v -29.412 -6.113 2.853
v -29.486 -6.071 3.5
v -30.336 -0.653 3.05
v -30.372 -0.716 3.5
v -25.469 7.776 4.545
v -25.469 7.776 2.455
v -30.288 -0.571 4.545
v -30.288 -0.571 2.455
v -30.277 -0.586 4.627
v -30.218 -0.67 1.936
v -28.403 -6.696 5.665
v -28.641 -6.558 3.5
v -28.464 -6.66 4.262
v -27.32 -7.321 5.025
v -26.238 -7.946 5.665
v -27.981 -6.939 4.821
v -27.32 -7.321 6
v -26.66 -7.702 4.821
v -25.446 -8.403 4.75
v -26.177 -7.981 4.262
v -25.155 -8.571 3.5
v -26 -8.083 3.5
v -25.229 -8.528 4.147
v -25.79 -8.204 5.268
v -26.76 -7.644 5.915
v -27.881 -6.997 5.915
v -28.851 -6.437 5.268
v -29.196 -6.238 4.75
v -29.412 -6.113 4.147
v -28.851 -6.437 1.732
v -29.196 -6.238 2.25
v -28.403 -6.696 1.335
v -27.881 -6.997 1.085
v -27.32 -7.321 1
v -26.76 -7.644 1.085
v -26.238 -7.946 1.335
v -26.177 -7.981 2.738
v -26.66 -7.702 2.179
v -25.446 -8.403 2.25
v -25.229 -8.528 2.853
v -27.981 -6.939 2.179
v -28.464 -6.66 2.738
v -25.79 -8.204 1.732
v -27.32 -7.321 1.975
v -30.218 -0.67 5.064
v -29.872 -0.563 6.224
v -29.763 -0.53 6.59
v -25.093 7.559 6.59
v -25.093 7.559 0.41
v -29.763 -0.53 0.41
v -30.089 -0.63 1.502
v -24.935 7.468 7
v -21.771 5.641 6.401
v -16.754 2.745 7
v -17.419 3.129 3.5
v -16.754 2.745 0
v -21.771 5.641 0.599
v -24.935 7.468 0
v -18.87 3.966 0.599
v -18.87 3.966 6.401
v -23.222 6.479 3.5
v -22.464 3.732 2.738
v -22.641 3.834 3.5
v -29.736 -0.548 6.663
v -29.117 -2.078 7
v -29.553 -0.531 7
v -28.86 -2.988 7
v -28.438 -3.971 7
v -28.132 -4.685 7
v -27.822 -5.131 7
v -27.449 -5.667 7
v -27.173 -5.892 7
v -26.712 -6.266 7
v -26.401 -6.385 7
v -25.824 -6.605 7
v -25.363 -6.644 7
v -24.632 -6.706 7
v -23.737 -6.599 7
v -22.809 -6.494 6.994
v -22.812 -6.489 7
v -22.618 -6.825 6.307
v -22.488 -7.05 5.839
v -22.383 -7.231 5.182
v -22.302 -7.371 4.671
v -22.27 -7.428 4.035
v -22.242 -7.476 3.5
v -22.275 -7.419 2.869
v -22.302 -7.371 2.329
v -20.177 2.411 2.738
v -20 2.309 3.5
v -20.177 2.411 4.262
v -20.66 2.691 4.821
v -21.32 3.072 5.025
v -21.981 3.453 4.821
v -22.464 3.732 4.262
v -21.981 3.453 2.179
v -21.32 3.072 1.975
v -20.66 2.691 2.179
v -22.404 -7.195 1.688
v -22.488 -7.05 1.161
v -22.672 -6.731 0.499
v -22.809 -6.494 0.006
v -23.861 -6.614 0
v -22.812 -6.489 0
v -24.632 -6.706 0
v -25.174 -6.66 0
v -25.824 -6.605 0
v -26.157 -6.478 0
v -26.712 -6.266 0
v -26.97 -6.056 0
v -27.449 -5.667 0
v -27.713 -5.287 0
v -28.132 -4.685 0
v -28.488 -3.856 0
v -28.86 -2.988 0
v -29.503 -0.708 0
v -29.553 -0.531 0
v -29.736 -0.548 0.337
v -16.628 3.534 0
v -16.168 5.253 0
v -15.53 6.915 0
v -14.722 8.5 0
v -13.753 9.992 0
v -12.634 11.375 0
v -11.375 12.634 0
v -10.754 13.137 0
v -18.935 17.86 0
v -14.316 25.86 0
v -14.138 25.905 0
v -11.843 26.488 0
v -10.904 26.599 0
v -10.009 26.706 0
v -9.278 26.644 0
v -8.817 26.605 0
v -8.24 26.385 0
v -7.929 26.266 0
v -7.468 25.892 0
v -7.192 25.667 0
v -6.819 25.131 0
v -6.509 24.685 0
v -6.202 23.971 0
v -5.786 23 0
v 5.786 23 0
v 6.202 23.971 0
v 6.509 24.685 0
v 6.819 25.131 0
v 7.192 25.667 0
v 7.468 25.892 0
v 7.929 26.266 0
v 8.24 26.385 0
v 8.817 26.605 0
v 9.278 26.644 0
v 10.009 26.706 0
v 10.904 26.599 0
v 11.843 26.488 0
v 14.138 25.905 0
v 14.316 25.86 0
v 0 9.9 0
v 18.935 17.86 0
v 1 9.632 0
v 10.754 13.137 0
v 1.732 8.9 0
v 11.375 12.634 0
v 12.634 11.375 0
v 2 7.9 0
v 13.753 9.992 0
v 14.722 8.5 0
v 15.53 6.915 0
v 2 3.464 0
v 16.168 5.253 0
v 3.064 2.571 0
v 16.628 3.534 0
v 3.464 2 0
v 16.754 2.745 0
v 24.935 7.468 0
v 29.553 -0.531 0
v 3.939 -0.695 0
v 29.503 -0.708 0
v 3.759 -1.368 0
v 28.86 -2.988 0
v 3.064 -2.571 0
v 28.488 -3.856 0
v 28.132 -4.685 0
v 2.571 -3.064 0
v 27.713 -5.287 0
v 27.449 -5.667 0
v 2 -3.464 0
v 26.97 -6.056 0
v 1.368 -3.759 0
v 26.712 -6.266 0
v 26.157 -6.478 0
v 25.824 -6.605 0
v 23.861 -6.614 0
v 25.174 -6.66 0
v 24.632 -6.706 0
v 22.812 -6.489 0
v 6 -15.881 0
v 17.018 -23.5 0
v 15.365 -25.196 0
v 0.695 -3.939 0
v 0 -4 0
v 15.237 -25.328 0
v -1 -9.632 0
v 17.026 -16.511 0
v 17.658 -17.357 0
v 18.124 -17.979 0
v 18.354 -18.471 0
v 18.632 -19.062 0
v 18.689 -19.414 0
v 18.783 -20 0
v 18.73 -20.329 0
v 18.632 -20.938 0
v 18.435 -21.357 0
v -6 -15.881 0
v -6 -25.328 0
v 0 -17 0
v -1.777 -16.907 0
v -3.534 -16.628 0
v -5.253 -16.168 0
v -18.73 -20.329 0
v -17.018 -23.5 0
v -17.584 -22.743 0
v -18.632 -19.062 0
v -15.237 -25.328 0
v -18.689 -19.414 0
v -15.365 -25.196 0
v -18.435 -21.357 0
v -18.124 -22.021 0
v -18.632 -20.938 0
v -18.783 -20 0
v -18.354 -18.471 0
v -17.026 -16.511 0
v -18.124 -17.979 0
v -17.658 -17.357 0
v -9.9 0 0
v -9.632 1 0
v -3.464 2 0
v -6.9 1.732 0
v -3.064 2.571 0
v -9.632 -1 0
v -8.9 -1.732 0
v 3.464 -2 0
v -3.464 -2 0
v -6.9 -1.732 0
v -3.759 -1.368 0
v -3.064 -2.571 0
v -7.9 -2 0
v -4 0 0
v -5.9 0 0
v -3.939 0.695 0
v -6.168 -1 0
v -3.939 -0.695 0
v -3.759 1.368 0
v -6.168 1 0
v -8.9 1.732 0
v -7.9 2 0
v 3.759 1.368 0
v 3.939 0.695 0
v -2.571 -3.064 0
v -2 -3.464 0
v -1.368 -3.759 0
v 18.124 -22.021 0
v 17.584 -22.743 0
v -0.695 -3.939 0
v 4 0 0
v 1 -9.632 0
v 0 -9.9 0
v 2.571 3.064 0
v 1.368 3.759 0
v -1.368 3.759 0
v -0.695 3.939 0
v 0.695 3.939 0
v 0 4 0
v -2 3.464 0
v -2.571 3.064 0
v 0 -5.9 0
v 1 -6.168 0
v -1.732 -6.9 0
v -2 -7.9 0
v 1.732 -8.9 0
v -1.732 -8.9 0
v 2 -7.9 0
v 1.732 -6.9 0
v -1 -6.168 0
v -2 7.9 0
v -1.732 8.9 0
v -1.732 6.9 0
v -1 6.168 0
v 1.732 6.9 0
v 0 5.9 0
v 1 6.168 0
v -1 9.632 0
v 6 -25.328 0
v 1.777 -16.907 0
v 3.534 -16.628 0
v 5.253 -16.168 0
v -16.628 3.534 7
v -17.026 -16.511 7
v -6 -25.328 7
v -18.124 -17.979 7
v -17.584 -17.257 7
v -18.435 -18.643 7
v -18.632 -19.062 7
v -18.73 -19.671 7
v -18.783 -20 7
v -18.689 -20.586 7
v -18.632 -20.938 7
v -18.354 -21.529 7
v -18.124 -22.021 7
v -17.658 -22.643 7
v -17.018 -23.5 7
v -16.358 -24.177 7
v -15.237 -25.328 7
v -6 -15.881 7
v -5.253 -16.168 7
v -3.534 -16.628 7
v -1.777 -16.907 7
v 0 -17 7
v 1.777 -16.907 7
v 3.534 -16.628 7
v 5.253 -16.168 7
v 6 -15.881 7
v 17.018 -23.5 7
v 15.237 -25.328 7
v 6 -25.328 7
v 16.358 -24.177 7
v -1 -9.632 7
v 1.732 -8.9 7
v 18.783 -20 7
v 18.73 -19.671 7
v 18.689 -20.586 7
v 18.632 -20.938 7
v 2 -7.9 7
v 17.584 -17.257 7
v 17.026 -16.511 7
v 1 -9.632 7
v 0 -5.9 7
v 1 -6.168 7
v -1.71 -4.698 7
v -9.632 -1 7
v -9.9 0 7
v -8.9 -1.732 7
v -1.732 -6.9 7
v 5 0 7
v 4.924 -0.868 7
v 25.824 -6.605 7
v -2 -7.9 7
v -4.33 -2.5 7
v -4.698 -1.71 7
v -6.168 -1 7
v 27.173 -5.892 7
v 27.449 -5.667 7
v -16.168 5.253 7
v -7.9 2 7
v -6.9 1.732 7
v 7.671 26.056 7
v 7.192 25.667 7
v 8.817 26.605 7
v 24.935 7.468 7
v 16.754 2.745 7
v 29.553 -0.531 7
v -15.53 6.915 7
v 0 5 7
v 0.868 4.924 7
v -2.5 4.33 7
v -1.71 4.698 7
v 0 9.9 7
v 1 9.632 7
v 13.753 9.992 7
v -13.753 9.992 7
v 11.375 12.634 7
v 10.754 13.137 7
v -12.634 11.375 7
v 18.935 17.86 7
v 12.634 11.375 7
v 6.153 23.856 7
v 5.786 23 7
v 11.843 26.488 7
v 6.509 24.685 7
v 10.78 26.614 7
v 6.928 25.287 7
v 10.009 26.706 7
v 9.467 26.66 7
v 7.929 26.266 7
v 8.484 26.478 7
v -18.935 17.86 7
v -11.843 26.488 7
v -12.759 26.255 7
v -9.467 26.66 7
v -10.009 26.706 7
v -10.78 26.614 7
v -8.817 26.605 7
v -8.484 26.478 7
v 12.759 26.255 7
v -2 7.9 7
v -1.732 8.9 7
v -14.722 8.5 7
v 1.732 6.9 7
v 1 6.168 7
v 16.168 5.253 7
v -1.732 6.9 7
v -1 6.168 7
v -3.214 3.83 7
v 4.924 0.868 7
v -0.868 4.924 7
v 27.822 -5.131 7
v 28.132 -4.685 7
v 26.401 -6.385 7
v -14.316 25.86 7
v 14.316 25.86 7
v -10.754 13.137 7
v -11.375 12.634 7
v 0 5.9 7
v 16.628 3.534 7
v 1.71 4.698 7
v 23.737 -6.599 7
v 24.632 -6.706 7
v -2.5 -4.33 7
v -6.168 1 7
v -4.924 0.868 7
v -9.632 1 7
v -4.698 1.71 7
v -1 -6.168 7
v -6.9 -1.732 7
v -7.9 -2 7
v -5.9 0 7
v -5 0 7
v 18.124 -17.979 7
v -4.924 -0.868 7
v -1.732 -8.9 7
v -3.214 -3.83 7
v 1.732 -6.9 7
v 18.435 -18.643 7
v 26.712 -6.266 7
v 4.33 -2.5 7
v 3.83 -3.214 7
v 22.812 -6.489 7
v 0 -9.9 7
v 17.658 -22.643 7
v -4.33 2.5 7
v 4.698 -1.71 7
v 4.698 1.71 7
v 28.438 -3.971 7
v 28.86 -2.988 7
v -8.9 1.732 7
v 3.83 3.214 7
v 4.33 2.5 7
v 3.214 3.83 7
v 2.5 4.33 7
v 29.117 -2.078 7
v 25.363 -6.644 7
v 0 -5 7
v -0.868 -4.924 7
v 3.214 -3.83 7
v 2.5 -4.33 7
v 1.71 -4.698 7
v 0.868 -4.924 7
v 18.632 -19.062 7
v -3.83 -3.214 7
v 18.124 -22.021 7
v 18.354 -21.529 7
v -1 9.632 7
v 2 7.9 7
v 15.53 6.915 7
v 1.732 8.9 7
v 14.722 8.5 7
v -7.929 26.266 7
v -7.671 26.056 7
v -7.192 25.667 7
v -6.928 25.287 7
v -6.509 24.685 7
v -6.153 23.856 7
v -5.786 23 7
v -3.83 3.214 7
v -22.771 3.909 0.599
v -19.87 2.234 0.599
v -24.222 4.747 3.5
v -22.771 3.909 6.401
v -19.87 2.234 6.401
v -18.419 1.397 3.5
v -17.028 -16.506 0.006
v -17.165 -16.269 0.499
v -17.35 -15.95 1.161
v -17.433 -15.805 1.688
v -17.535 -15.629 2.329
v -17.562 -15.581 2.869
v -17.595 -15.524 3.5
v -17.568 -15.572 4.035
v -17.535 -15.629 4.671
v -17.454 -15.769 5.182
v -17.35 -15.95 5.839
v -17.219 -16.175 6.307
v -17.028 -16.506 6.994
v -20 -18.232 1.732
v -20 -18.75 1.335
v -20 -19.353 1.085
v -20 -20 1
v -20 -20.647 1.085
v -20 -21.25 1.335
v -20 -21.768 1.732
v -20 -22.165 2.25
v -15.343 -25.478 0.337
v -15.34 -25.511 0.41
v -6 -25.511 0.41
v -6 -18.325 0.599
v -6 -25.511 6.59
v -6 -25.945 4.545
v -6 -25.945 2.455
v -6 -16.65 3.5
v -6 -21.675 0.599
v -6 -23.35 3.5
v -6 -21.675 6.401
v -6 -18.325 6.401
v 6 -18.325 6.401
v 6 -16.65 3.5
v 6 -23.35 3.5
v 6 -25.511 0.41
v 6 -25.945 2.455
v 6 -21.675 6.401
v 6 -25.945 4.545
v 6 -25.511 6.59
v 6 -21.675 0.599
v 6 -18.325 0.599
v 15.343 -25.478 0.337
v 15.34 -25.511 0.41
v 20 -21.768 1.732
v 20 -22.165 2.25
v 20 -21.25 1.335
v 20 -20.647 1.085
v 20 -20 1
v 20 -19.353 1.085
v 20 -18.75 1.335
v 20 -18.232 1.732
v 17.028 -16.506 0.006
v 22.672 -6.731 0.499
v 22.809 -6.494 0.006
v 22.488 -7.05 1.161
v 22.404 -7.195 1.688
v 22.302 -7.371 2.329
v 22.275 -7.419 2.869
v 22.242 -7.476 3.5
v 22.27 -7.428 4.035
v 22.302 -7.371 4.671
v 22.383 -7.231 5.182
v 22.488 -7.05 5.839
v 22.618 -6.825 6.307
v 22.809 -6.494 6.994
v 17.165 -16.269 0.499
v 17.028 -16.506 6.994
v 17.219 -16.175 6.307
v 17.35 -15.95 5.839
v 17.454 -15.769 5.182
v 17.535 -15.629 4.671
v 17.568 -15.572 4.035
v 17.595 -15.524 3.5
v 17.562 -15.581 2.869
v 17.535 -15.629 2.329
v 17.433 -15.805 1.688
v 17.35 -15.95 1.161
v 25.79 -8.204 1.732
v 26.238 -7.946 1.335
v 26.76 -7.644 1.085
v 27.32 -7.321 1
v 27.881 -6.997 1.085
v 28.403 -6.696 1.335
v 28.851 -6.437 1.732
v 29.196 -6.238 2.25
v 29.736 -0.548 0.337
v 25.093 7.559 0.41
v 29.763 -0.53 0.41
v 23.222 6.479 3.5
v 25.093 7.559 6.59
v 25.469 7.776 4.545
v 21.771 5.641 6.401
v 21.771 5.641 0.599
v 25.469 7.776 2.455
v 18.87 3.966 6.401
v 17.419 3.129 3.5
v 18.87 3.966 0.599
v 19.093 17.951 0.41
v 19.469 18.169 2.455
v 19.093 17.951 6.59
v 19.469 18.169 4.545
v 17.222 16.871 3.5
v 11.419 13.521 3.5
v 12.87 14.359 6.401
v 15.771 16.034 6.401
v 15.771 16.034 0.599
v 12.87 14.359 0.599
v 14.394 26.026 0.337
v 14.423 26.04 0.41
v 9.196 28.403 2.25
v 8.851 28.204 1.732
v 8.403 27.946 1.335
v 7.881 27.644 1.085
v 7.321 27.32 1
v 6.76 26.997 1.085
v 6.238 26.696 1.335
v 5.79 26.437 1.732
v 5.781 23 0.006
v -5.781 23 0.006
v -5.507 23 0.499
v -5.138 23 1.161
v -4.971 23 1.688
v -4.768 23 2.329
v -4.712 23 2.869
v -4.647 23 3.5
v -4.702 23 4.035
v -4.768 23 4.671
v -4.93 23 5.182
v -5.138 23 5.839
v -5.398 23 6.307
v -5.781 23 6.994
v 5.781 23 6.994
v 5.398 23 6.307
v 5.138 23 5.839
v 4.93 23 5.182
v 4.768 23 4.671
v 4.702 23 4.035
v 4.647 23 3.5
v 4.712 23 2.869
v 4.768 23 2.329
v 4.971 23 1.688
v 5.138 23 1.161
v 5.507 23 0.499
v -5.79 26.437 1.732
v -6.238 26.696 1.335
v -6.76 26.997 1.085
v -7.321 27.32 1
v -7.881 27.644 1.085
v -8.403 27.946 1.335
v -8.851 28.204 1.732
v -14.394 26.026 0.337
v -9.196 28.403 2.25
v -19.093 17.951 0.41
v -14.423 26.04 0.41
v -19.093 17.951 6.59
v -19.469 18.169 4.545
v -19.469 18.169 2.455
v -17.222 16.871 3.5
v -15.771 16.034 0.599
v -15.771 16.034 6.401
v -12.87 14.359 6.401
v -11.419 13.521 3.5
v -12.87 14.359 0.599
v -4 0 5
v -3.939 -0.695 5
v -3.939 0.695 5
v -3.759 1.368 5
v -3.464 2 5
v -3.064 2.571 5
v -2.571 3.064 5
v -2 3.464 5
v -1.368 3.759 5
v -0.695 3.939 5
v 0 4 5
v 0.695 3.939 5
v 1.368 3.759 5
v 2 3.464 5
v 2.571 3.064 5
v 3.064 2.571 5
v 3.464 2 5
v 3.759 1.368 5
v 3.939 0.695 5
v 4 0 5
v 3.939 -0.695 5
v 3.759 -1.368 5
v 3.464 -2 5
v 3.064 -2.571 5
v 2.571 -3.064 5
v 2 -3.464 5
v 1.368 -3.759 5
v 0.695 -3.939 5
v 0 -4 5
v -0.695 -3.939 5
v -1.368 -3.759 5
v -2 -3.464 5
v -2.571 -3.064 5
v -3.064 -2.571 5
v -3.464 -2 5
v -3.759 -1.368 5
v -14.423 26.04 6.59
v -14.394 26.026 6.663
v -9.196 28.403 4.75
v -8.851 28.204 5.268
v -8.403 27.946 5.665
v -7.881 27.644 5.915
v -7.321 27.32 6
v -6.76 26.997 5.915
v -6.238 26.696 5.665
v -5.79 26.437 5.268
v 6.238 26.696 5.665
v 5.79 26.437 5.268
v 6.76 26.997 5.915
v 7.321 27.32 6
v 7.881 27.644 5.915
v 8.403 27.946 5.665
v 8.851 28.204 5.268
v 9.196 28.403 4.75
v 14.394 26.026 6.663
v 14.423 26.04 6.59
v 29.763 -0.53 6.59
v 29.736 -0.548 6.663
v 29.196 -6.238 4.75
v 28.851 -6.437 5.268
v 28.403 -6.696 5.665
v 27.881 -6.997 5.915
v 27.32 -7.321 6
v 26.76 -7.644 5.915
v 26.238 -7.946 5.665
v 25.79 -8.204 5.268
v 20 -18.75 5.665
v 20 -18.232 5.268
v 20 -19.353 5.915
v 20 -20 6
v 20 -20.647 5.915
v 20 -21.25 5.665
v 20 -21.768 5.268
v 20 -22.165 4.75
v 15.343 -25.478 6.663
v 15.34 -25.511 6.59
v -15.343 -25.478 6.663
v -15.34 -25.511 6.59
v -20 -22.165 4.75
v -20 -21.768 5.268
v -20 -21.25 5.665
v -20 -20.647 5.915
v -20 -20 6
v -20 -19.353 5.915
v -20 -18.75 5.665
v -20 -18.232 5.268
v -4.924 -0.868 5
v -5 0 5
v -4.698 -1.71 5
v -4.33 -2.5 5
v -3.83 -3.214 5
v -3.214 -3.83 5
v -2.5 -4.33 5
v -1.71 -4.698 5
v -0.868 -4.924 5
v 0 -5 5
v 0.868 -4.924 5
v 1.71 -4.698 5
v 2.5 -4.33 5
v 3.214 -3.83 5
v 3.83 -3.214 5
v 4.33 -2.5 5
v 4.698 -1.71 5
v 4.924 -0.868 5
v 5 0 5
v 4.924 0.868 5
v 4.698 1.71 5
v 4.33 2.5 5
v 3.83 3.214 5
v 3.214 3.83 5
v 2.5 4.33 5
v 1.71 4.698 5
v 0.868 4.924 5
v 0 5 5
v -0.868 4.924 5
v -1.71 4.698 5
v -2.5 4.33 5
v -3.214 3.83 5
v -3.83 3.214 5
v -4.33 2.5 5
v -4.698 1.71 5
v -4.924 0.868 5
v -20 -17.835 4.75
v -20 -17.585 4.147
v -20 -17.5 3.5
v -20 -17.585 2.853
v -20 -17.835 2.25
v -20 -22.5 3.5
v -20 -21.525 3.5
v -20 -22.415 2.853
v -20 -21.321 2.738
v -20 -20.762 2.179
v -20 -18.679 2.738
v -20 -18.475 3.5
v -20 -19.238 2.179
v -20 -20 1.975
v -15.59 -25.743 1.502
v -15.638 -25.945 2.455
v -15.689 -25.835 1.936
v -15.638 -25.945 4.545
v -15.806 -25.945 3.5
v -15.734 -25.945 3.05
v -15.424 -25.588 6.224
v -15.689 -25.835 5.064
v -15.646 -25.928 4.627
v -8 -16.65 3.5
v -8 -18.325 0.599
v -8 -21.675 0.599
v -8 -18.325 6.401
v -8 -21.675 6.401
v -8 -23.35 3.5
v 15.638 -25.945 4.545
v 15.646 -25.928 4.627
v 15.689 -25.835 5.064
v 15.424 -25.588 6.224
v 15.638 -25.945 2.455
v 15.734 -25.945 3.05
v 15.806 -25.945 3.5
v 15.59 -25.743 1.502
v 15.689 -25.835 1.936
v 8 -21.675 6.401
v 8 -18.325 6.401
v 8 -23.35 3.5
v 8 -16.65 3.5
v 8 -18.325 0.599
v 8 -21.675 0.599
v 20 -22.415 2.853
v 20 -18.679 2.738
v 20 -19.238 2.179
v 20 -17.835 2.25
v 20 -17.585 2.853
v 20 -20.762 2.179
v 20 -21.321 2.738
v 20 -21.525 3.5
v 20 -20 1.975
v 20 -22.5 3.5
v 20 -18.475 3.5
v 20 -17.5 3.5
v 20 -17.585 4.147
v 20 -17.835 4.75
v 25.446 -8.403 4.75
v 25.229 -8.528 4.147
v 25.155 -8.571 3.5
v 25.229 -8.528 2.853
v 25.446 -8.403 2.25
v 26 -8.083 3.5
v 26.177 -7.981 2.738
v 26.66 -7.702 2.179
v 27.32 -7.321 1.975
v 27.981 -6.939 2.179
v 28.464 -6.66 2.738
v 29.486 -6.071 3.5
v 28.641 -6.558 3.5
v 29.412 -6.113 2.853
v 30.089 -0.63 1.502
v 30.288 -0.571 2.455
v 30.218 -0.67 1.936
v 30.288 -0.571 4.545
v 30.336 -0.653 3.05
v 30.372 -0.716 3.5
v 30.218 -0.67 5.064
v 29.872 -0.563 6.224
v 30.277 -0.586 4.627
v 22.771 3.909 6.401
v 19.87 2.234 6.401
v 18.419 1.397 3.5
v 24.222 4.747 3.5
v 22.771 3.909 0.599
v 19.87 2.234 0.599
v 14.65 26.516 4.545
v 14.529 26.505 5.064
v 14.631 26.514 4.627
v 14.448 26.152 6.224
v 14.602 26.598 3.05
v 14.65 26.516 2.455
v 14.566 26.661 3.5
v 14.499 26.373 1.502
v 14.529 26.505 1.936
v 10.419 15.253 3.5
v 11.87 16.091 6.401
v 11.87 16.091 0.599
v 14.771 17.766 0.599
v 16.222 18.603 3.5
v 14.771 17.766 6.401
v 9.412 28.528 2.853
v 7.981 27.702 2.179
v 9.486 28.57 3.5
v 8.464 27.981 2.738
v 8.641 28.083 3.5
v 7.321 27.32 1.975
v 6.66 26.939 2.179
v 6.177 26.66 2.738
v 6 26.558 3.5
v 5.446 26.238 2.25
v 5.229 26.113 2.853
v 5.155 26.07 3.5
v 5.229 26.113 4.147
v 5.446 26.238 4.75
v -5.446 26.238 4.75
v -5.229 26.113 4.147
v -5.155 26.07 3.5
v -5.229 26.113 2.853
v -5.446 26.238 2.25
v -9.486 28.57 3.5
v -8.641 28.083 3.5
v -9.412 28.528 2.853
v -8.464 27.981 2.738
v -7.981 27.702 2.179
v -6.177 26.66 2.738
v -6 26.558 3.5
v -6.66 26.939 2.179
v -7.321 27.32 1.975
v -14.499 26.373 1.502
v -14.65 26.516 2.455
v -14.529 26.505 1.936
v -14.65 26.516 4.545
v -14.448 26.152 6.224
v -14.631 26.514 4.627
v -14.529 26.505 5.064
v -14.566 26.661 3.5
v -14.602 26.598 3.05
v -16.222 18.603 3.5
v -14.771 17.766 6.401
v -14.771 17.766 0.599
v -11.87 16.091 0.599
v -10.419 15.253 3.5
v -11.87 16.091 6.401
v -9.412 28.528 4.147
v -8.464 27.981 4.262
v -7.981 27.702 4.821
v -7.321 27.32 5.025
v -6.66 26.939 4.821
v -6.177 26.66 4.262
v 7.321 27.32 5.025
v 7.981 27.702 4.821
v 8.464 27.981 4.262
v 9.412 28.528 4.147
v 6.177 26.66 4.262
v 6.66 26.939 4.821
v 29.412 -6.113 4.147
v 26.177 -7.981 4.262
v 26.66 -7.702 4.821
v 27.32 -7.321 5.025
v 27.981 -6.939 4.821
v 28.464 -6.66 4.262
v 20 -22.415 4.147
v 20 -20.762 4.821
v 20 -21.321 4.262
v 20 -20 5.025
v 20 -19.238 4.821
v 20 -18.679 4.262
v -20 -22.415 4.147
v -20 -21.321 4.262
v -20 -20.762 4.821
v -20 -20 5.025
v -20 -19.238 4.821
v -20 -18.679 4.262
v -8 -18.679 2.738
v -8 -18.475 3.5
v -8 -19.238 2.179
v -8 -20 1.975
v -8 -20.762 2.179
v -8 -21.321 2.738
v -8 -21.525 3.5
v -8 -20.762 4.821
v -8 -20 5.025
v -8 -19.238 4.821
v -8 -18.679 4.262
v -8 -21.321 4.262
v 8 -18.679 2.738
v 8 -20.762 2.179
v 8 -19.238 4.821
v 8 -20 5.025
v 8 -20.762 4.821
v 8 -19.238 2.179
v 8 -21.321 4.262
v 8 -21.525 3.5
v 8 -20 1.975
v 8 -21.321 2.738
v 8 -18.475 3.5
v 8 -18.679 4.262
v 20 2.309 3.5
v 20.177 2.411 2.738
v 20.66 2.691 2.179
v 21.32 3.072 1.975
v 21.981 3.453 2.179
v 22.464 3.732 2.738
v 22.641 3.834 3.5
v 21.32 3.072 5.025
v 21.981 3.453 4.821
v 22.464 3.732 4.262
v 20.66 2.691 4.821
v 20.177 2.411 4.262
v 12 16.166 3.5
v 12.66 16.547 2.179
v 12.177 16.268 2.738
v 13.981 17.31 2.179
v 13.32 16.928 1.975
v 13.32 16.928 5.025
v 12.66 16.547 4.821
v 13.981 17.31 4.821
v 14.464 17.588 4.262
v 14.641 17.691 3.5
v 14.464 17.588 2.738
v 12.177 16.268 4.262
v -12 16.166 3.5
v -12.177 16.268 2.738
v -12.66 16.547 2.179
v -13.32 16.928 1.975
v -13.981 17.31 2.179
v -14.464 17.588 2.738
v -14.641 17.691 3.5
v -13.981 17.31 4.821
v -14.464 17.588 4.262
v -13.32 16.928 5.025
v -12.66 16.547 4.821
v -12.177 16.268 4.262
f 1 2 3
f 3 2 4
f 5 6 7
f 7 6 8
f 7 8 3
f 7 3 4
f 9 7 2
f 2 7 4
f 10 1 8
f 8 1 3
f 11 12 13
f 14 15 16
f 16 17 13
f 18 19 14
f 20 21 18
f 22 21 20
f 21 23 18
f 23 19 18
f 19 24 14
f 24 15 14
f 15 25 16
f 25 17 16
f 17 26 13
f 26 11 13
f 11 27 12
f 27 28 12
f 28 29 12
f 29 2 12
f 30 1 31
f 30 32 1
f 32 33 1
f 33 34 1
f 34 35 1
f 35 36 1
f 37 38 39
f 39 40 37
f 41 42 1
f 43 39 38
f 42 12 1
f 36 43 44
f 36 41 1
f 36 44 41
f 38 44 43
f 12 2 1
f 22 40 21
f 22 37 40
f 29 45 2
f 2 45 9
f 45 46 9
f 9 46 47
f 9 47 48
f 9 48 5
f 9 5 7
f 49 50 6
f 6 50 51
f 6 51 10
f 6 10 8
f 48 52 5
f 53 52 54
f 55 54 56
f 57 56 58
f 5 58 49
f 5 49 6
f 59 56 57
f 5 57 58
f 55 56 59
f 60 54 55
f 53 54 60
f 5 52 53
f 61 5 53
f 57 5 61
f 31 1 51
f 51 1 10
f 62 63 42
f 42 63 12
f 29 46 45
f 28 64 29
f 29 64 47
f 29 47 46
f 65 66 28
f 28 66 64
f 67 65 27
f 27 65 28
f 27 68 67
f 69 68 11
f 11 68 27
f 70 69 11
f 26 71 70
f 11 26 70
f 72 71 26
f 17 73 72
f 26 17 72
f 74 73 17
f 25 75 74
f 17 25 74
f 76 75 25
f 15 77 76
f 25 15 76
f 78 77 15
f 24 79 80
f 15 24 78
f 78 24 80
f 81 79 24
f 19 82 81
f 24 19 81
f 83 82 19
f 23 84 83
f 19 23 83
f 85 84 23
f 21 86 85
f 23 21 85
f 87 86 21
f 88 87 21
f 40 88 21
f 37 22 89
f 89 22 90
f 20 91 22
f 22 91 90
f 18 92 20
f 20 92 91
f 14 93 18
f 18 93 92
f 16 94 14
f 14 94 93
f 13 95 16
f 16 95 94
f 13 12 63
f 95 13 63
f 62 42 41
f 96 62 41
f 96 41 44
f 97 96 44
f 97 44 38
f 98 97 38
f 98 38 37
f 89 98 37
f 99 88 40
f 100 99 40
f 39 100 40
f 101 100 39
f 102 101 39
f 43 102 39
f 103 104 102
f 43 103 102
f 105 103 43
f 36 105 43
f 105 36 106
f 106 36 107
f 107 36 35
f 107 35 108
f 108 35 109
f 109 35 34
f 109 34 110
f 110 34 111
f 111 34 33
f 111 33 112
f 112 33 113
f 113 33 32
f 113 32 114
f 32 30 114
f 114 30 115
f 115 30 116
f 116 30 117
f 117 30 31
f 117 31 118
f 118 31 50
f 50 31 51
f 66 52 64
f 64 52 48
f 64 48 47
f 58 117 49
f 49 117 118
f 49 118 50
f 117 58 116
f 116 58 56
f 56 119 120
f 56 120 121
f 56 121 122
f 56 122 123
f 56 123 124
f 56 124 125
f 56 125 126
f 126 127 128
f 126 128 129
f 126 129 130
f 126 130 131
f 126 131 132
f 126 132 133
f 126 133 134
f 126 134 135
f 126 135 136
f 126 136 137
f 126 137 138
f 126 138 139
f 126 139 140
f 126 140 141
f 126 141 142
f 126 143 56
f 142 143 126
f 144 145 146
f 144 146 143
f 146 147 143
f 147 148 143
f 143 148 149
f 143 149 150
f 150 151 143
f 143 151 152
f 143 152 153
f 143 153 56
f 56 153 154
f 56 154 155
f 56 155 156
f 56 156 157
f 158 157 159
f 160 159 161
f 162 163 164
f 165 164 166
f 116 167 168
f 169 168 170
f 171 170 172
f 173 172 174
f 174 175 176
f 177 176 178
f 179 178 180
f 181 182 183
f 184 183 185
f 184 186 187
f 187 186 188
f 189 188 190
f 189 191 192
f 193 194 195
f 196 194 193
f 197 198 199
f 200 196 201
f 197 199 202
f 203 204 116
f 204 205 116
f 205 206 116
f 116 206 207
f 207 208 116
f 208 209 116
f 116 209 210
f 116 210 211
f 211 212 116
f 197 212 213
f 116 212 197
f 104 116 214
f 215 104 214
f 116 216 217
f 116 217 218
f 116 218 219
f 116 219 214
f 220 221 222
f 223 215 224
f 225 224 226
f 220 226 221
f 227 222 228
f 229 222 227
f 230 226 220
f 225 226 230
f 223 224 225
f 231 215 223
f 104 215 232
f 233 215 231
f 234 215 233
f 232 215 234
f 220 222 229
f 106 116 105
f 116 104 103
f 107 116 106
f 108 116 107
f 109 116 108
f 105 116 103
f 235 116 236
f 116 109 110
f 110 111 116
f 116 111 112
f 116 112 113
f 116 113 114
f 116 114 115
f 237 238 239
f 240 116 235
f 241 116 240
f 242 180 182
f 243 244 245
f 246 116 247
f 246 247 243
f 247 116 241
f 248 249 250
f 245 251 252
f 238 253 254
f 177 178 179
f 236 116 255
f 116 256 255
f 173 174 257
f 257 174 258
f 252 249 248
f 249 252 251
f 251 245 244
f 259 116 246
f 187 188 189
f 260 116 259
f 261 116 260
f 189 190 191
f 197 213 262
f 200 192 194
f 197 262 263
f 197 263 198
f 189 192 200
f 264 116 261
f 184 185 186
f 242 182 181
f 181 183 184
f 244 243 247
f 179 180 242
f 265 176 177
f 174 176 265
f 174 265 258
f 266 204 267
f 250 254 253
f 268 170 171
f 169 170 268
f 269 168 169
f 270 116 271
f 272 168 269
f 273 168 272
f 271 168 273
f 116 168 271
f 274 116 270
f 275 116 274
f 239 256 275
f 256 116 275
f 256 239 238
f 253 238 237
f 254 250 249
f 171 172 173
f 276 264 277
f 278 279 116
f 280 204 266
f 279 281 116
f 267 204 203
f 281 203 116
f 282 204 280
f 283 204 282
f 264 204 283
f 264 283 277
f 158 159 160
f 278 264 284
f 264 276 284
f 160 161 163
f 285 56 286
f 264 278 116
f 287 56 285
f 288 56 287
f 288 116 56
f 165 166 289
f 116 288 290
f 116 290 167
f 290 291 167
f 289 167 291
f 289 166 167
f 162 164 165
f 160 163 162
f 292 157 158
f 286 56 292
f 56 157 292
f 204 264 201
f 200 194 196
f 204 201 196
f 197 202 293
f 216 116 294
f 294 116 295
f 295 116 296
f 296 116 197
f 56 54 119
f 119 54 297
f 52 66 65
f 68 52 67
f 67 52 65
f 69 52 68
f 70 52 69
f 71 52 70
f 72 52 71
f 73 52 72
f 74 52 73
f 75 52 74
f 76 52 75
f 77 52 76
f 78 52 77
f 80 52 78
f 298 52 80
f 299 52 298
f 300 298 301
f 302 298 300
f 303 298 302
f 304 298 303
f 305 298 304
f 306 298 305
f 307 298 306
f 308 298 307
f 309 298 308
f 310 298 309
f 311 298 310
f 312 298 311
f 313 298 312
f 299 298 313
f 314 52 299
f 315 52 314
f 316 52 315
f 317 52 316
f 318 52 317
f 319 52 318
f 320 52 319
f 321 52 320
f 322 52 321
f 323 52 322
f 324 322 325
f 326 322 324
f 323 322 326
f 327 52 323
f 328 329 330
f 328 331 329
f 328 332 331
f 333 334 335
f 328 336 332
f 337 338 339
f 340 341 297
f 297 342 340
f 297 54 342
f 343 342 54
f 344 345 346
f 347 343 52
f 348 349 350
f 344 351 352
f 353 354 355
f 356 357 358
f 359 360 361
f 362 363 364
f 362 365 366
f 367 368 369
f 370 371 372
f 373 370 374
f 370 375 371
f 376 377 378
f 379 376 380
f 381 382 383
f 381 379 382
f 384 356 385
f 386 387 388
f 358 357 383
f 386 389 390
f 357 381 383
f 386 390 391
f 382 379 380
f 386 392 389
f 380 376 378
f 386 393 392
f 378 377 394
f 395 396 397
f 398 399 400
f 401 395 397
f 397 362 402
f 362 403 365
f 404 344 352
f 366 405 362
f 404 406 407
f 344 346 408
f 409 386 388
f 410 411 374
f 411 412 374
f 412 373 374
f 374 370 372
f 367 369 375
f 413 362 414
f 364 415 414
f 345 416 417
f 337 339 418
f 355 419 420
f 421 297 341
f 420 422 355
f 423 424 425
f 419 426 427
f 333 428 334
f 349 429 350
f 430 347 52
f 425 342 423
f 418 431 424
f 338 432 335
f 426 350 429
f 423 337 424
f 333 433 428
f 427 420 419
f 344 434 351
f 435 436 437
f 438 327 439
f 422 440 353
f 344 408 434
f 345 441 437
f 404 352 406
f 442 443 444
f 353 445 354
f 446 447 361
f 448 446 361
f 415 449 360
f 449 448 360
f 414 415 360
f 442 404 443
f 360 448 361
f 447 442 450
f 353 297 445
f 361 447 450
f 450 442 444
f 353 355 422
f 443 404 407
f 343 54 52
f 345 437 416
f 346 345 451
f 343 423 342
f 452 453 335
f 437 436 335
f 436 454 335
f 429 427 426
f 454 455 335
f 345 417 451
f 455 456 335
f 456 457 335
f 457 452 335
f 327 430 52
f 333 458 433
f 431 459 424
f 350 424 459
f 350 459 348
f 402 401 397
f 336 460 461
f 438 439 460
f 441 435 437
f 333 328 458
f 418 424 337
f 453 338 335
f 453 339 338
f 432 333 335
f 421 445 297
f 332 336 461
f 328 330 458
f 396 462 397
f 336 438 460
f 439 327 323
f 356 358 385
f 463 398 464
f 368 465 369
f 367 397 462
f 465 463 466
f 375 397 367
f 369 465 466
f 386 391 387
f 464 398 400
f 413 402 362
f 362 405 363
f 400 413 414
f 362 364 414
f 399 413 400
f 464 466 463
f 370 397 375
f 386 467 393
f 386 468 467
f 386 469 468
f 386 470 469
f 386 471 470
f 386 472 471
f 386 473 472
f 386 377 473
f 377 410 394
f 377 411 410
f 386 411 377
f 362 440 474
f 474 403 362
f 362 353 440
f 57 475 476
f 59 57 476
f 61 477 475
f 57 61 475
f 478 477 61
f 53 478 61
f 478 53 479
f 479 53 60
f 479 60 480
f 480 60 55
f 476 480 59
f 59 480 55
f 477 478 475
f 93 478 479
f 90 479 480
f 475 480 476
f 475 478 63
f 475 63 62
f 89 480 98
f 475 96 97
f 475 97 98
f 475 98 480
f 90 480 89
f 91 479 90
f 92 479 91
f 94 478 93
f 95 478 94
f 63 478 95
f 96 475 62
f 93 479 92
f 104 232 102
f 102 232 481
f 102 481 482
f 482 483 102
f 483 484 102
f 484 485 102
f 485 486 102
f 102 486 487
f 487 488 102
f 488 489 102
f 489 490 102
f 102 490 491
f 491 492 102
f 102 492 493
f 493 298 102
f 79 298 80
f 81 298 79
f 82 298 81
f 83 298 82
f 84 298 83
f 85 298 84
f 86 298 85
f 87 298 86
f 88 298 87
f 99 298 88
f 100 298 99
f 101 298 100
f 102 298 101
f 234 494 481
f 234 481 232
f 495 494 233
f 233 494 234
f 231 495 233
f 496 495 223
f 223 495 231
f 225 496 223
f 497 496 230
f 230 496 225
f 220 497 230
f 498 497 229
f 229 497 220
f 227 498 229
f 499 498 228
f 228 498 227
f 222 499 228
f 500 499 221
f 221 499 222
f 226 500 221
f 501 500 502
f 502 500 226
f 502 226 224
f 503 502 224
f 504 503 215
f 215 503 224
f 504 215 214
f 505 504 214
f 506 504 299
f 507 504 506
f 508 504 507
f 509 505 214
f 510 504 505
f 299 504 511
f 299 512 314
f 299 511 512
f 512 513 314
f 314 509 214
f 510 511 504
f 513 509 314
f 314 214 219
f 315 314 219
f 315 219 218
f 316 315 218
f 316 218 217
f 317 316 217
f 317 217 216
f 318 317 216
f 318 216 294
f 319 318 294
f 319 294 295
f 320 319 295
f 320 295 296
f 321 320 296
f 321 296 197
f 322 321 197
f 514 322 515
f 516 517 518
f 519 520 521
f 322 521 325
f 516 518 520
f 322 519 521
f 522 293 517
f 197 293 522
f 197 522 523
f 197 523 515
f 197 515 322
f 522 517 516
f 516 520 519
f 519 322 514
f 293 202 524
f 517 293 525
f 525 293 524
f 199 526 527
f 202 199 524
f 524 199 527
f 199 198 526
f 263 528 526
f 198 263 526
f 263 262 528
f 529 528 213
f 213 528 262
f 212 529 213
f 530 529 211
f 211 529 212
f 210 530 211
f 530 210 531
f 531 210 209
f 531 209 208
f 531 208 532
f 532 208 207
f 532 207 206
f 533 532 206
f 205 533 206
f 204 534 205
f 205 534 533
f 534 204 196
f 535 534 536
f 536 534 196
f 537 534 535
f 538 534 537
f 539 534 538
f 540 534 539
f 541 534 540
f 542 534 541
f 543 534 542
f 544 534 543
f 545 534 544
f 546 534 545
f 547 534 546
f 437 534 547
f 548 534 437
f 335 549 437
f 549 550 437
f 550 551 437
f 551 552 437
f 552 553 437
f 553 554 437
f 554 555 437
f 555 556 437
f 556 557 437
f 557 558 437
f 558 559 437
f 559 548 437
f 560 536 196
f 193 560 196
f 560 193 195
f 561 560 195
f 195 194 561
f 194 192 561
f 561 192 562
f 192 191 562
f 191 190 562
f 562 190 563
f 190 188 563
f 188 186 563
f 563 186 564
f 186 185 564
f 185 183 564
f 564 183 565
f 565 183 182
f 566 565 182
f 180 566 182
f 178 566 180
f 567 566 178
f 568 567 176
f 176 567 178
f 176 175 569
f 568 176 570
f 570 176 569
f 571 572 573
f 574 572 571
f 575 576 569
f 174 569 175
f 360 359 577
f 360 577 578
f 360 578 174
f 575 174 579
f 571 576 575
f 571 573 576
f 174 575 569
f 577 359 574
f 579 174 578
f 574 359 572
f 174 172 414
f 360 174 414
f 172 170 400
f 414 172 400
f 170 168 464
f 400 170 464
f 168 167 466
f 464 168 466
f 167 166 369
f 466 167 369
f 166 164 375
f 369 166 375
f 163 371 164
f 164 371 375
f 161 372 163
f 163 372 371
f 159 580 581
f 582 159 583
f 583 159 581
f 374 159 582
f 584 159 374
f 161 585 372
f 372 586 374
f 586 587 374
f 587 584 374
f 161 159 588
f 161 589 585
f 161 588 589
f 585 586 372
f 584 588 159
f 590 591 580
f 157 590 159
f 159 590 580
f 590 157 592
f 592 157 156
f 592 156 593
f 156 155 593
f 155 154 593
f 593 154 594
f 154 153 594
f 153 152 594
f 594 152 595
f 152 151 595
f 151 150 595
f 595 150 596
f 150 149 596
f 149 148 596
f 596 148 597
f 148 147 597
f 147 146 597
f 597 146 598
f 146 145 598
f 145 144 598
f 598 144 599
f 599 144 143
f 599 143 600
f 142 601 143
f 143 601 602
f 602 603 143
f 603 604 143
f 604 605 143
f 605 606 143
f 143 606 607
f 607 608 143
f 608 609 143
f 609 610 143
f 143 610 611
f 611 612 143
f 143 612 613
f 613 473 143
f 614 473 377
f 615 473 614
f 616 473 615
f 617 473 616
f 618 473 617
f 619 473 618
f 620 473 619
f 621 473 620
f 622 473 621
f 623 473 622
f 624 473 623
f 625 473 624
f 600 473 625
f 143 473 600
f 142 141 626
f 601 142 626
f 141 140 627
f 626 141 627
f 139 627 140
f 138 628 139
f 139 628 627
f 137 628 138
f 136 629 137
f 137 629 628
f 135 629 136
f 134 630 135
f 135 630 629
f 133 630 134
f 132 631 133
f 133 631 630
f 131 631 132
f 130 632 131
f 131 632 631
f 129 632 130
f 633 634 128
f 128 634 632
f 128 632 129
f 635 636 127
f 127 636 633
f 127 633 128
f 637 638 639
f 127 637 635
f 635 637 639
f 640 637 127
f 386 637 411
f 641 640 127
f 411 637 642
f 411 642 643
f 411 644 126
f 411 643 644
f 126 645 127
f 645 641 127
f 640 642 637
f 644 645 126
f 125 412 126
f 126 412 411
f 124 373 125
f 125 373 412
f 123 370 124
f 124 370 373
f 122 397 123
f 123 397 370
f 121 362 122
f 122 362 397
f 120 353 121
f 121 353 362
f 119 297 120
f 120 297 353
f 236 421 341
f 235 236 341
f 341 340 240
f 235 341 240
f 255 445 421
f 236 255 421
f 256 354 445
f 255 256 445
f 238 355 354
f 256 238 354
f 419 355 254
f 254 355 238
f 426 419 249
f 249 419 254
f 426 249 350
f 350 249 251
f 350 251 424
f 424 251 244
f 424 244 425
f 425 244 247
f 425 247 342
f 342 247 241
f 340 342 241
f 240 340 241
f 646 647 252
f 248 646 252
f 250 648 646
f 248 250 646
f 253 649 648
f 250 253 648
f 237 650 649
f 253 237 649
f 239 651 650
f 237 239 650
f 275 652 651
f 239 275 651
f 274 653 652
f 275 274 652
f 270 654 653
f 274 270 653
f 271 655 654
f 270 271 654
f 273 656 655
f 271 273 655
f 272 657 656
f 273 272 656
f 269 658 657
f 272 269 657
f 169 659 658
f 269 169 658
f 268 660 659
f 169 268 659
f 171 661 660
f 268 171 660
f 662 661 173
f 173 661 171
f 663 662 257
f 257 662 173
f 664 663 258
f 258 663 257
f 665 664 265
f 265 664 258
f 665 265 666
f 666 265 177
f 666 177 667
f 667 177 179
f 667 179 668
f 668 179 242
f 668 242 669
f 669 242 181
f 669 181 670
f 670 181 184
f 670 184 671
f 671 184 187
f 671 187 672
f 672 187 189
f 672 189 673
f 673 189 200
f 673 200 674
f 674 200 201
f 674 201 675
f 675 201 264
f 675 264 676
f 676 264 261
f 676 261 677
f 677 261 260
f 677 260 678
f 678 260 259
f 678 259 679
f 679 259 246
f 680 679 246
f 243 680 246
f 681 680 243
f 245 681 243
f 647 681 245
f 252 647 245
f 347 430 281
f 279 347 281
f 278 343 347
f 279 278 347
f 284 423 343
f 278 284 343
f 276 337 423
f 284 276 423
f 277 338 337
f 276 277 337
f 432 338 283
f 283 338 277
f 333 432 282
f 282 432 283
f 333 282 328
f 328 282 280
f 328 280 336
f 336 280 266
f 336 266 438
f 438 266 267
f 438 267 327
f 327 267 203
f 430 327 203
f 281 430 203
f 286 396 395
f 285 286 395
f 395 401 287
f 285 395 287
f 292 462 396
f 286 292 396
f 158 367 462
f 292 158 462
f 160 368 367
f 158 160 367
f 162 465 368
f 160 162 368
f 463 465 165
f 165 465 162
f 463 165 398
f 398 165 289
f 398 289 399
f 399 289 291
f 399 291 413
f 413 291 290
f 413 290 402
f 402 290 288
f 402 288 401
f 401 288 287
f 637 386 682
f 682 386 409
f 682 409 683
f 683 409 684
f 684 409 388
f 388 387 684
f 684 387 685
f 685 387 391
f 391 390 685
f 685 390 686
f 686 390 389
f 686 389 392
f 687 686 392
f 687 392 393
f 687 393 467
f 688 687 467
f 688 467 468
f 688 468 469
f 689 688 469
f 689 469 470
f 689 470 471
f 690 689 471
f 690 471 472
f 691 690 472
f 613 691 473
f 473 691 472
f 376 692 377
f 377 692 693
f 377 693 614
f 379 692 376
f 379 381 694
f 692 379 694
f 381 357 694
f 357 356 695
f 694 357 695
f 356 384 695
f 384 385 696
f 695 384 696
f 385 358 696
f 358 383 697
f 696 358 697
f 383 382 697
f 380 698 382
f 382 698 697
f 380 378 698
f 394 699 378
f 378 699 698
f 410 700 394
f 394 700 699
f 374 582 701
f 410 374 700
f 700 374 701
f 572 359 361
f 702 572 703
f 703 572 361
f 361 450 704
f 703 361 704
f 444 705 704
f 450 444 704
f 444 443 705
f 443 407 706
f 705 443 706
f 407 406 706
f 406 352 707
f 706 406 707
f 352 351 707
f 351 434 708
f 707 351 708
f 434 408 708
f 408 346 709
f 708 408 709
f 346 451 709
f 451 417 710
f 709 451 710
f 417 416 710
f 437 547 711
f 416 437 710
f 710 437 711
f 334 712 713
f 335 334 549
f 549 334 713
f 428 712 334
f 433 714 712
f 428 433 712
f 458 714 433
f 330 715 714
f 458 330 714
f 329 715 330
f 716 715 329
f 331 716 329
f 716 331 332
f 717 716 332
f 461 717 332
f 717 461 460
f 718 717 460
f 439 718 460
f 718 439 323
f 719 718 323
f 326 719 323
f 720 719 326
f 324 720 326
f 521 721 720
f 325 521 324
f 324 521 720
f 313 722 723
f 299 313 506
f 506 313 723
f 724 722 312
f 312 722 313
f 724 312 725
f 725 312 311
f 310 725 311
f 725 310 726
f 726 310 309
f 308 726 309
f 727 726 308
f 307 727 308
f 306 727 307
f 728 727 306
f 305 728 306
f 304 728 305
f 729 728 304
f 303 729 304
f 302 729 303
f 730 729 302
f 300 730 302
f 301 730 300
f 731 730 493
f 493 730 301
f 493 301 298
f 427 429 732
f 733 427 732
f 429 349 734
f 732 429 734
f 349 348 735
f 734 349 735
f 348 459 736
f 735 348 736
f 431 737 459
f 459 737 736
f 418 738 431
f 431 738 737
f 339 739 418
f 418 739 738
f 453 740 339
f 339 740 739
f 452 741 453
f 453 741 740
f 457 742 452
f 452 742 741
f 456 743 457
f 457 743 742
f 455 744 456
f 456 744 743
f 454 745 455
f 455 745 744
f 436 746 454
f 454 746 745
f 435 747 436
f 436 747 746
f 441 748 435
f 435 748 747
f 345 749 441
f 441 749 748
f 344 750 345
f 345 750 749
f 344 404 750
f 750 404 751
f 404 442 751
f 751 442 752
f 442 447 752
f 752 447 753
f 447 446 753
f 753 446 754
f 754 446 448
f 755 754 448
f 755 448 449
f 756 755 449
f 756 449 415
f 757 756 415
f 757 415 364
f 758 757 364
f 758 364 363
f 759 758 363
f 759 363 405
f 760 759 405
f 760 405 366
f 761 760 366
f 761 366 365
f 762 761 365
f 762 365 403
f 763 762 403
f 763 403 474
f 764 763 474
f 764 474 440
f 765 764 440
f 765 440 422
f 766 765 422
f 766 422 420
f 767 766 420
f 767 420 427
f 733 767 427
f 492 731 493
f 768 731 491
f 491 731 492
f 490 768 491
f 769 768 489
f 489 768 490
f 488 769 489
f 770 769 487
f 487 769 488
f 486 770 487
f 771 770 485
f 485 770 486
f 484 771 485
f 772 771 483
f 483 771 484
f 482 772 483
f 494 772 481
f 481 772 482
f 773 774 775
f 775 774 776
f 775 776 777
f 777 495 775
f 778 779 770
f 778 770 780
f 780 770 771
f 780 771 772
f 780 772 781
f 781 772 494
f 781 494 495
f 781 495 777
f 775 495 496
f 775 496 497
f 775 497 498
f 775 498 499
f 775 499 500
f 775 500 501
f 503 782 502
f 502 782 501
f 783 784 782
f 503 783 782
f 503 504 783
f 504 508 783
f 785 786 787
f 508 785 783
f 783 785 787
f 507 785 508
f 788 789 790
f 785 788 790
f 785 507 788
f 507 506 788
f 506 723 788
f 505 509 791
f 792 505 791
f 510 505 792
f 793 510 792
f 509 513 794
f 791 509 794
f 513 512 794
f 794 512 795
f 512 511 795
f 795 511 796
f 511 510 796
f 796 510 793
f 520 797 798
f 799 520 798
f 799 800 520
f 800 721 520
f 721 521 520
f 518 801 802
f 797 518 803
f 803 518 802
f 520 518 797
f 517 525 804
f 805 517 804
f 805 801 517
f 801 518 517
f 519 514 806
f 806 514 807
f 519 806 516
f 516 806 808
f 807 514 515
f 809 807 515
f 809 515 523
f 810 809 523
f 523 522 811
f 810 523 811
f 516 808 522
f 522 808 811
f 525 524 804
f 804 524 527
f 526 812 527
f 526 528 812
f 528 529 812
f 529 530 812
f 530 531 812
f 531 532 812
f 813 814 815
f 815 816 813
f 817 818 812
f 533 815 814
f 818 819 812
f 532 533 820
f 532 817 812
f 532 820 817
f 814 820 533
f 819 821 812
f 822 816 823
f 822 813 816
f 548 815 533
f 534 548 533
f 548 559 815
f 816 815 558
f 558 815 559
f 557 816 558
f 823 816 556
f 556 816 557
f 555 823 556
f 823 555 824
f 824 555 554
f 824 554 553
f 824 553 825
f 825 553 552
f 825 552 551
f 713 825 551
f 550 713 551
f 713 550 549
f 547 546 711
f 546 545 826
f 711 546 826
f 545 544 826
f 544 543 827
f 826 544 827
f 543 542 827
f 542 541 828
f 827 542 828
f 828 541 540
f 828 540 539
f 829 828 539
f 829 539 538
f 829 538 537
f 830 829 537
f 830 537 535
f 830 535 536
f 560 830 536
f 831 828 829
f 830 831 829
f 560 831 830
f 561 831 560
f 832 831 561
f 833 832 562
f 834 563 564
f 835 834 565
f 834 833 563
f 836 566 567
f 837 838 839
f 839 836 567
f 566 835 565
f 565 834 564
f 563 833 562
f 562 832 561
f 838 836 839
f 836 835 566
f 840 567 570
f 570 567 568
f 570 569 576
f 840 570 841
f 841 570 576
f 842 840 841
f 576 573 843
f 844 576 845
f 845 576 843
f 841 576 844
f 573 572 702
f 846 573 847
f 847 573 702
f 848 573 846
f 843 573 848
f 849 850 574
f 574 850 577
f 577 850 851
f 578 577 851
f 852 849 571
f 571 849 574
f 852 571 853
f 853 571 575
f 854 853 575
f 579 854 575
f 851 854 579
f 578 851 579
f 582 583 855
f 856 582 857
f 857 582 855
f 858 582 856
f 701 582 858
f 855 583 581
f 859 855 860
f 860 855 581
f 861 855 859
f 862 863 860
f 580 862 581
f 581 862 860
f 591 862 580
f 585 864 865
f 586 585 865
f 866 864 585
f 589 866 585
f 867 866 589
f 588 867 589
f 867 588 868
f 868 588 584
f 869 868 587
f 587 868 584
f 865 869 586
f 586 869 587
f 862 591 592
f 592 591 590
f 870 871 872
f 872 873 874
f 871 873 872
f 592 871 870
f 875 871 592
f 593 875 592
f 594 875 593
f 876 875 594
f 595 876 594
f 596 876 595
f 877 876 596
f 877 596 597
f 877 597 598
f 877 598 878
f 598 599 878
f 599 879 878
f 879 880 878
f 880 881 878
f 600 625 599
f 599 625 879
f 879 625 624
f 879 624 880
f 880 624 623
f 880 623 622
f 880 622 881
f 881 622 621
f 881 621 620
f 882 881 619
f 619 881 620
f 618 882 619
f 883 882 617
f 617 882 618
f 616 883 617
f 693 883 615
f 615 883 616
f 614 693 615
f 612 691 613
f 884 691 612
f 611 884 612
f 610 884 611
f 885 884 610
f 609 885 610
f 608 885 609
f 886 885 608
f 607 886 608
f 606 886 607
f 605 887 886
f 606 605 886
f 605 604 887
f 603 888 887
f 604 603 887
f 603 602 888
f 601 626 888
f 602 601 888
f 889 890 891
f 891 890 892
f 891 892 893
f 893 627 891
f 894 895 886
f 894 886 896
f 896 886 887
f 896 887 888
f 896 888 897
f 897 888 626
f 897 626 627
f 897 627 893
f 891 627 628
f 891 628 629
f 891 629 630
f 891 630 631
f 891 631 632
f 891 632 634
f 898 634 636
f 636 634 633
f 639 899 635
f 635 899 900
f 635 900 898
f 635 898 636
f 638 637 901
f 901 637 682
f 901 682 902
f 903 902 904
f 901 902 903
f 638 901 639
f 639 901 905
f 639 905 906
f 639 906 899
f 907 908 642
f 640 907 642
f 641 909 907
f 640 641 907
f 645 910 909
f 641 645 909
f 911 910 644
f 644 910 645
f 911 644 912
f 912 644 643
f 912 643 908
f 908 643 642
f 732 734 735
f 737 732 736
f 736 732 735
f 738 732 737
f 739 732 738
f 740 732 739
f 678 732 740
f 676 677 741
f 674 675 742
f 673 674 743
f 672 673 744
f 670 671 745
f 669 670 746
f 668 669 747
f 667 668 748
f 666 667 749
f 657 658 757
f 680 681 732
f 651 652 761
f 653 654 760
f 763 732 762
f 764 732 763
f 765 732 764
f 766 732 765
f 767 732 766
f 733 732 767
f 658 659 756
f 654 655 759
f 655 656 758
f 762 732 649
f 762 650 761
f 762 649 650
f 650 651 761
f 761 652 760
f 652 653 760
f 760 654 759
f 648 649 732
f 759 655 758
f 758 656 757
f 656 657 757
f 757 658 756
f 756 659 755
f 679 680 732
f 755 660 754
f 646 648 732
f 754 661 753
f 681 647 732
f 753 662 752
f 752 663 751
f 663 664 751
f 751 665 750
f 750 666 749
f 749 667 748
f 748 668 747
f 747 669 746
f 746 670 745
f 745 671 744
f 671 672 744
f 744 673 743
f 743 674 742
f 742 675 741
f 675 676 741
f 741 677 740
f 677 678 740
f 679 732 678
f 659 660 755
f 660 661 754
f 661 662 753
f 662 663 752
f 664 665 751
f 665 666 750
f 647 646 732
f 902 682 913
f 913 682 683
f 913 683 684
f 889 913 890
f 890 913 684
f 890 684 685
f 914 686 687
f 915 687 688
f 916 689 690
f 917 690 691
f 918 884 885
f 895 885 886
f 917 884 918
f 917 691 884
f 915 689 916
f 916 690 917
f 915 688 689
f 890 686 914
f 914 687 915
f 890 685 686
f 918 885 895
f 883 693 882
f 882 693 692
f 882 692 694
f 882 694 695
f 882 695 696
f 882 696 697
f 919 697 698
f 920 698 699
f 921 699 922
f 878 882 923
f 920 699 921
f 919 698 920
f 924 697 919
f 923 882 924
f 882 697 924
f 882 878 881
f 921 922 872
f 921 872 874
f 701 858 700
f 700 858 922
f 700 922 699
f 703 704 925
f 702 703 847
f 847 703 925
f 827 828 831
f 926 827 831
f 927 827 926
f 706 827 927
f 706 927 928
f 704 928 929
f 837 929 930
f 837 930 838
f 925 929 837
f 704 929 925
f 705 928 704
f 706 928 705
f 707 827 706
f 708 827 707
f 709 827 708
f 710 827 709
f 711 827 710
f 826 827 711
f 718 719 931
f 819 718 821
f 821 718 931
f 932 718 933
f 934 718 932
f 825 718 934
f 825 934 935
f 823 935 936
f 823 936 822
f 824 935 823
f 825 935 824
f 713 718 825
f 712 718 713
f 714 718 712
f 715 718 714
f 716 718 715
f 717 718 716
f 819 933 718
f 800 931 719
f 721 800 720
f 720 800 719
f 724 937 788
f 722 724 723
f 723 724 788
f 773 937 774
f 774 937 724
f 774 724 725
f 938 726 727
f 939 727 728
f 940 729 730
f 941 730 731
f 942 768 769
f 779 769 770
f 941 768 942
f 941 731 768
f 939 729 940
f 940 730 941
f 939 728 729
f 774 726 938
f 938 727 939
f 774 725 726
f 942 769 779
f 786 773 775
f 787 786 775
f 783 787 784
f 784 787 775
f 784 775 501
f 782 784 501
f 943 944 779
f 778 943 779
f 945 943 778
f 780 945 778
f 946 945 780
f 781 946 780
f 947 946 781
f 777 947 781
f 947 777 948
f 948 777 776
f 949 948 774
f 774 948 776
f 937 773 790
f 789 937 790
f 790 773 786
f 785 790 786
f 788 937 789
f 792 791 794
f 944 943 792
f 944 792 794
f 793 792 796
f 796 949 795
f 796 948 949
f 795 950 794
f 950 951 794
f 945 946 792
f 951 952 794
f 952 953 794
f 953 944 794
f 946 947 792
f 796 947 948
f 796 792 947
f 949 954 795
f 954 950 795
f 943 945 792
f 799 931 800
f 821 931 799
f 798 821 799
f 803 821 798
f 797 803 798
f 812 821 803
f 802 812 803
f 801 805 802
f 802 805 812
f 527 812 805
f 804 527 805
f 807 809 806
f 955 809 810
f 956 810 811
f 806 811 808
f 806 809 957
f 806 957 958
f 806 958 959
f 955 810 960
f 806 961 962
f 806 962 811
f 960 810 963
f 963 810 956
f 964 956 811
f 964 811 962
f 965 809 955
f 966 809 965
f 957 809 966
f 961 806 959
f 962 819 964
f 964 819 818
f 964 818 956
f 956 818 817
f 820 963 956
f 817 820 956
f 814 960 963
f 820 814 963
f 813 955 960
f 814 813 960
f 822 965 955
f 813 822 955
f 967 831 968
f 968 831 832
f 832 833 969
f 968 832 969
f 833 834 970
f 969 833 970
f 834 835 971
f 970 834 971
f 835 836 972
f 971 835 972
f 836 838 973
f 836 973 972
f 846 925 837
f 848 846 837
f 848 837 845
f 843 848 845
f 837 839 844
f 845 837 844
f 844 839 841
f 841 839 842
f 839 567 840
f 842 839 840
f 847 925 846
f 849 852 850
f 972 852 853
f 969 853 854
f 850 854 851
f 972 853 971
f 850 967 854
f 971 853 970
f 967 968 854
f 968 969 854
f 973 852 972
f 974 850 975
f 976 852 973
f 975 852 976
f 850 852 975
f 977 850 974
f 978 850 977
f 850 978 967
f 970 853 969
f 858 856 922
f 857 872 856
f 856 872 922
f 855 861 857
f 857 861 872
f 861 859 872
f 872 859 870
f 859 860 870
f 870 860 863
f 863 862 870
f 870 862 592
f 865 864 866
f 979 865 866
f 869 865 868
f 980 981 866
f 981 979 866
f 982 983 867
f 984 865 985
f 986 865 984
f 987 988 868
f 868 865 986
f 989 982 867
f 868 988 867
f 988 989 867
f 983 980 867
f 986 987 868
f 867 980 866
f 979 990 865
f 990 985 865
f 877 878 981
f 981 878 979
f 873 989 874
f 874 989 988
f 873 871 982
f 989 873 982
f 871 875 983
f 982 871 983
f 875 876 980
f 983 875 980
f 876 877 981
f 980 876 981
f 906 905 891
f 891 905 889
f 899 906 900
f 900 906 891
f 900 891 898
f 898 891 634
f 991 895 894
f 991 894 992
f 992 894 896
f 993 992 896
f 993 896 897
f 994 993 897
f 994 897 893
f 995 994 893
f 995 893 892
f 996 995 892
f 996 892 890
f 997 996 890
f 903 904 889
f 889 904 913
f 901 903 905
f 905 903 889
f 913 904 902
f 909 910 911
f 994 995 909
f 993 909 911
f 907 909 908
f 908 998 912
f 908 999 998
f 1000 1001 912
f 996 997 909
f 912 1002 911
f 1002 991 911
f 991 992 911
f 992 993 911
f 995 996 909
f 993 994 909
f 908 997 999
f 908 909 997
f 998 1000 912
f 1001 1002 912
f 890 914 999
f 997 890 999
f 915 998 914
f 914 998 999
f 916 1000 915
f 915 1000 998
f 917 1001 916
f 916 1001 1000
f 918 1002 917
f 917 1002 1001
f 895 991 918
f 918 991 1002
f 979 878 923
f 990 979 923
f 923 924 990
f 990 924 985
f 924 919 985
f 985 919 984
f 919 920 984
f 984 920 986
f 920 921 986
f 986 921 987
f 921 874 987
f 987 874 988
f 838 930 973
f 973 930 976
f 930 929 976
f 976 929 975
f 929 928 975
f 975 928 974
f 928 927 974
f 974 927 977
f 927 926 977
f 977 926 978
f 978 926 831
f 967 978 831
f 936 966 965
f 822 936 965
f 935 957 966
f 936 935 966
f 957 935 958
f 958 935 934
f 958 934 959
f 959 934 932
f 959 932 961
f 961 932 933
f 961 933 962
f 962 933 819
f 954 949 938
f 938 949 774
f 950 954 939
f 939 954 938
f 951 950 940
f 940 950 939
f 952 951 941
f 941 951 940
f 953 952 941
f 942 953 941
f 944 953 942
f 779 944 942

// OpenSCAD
// file: configuration.scad
// Increase this if your slicer or printer make holes too tight.
extra_radius = 0.1;

// OD = outside diameter, corner to corner.
m3_nut_od = 6.1;
m3_nut_radius = m3_nut_od/2 + 0.2 + extra_radius;
m3_washer_radius = 3.5 + extra_radius;

// Major diameter of metric 3mm thread.
m3_major = 2.85;
m3_radius = m3_major/2 + extra_radius;
m3_wide_radius = m3_major/2 + extra_radius + 0.2;

// NEMA17 stepper motors.
motor_shaft_diameter = 5;
motor_shaft_radius = motor_shaft_diameter/2 + extra_radius;

// Frame brackets. M3x8mm screws work best with 3.6 mm brackets.
thickness = 3.6;

// OpenBeam or Misumi. Currently only 15x15 mm, but there is a plan
// to make models more parametric and allow 20x20 mm in the future.
extrusion = 20;

// Placement for the NEMA17 stepper motors.
motor_offset = 44;
motor_length = 47;
// main file
include <configuration.scad>;

mount_radius = 7.9;   // Radius from brushless motor mount screws
screw_hole_radius = 2;// hole size for mount screws
flange_radius = 5;    // Radius of bearing flange (5mm)
flange_height = 1.5;  // Height of bearing flange (1.5mm)
bearing_radius = 4;   // Radius of bearing (below flange)

height = 7;           // height of overall effector

// mounts from original kossel mini
separation = 40;  // Distance between ball joint mounting faces.
offset = 20;  // Same as DELTA_EFFECTOR_OFFSET in Marlin.
cone_r1 = 2.5;
cone_r2 = 14;

module effector() {
  difference() {
    union() {
      cylinder(r=offset-3, h=height, center=true, $fn=60);
      for (a = [60:120:359]) rotate([0, 0, a]) {
	rotate([0, 0, 30]) translate([offset-2, 0, 0])
	  cube([10, 13, height], center=true);
	for (s = [-1, 1]) scale([s, 1, 1]) {
	  translate([0, offset, 0]) difference() {
	    intersection() {
	      cube([separation, 40, height], center=true);
	      translate([0, -4, 0]) rotate([0, 90, 0])
		cylinder(r=10, h=separation, center=true);
	      translate([separation/2-7, 0, 0]) rotate([0, 90, 0])
		cylinder(r1=cone_r2, r2=cone_r1, h=14, center=true, $fn=24);
	    }
	    rotate([0, 90, 0])
	      cylinder(r=m3_radius, h=separation+1, center=true, $fn=12);
	    rotate([90, 0, 90])
	      cylinder(r=m3_nut_radius, h=separation-24, center=true, $fn=6);
	  }
        }
      }
    }
    // Start bearing hole in centre
    translate([0, 0, flange_height])
     cylinder(r=flange_radius, h=height, $fn=36);
    translate([0, 0, -6])
     cylinder(r=bearing_radius, h=2*height, $fn=36);
    // Start mounting holes
    translate([0, 0, -6]); 
    for (a = [0:90:269]) rotate([0, 0, a]) {
      translate([0, mount_radius, 0])
	cylinder(r=screw_hole_radius, h=2*height, center=true, $fn=12);
    }
  }
}

translate([0, 0, height/2]) effector();
